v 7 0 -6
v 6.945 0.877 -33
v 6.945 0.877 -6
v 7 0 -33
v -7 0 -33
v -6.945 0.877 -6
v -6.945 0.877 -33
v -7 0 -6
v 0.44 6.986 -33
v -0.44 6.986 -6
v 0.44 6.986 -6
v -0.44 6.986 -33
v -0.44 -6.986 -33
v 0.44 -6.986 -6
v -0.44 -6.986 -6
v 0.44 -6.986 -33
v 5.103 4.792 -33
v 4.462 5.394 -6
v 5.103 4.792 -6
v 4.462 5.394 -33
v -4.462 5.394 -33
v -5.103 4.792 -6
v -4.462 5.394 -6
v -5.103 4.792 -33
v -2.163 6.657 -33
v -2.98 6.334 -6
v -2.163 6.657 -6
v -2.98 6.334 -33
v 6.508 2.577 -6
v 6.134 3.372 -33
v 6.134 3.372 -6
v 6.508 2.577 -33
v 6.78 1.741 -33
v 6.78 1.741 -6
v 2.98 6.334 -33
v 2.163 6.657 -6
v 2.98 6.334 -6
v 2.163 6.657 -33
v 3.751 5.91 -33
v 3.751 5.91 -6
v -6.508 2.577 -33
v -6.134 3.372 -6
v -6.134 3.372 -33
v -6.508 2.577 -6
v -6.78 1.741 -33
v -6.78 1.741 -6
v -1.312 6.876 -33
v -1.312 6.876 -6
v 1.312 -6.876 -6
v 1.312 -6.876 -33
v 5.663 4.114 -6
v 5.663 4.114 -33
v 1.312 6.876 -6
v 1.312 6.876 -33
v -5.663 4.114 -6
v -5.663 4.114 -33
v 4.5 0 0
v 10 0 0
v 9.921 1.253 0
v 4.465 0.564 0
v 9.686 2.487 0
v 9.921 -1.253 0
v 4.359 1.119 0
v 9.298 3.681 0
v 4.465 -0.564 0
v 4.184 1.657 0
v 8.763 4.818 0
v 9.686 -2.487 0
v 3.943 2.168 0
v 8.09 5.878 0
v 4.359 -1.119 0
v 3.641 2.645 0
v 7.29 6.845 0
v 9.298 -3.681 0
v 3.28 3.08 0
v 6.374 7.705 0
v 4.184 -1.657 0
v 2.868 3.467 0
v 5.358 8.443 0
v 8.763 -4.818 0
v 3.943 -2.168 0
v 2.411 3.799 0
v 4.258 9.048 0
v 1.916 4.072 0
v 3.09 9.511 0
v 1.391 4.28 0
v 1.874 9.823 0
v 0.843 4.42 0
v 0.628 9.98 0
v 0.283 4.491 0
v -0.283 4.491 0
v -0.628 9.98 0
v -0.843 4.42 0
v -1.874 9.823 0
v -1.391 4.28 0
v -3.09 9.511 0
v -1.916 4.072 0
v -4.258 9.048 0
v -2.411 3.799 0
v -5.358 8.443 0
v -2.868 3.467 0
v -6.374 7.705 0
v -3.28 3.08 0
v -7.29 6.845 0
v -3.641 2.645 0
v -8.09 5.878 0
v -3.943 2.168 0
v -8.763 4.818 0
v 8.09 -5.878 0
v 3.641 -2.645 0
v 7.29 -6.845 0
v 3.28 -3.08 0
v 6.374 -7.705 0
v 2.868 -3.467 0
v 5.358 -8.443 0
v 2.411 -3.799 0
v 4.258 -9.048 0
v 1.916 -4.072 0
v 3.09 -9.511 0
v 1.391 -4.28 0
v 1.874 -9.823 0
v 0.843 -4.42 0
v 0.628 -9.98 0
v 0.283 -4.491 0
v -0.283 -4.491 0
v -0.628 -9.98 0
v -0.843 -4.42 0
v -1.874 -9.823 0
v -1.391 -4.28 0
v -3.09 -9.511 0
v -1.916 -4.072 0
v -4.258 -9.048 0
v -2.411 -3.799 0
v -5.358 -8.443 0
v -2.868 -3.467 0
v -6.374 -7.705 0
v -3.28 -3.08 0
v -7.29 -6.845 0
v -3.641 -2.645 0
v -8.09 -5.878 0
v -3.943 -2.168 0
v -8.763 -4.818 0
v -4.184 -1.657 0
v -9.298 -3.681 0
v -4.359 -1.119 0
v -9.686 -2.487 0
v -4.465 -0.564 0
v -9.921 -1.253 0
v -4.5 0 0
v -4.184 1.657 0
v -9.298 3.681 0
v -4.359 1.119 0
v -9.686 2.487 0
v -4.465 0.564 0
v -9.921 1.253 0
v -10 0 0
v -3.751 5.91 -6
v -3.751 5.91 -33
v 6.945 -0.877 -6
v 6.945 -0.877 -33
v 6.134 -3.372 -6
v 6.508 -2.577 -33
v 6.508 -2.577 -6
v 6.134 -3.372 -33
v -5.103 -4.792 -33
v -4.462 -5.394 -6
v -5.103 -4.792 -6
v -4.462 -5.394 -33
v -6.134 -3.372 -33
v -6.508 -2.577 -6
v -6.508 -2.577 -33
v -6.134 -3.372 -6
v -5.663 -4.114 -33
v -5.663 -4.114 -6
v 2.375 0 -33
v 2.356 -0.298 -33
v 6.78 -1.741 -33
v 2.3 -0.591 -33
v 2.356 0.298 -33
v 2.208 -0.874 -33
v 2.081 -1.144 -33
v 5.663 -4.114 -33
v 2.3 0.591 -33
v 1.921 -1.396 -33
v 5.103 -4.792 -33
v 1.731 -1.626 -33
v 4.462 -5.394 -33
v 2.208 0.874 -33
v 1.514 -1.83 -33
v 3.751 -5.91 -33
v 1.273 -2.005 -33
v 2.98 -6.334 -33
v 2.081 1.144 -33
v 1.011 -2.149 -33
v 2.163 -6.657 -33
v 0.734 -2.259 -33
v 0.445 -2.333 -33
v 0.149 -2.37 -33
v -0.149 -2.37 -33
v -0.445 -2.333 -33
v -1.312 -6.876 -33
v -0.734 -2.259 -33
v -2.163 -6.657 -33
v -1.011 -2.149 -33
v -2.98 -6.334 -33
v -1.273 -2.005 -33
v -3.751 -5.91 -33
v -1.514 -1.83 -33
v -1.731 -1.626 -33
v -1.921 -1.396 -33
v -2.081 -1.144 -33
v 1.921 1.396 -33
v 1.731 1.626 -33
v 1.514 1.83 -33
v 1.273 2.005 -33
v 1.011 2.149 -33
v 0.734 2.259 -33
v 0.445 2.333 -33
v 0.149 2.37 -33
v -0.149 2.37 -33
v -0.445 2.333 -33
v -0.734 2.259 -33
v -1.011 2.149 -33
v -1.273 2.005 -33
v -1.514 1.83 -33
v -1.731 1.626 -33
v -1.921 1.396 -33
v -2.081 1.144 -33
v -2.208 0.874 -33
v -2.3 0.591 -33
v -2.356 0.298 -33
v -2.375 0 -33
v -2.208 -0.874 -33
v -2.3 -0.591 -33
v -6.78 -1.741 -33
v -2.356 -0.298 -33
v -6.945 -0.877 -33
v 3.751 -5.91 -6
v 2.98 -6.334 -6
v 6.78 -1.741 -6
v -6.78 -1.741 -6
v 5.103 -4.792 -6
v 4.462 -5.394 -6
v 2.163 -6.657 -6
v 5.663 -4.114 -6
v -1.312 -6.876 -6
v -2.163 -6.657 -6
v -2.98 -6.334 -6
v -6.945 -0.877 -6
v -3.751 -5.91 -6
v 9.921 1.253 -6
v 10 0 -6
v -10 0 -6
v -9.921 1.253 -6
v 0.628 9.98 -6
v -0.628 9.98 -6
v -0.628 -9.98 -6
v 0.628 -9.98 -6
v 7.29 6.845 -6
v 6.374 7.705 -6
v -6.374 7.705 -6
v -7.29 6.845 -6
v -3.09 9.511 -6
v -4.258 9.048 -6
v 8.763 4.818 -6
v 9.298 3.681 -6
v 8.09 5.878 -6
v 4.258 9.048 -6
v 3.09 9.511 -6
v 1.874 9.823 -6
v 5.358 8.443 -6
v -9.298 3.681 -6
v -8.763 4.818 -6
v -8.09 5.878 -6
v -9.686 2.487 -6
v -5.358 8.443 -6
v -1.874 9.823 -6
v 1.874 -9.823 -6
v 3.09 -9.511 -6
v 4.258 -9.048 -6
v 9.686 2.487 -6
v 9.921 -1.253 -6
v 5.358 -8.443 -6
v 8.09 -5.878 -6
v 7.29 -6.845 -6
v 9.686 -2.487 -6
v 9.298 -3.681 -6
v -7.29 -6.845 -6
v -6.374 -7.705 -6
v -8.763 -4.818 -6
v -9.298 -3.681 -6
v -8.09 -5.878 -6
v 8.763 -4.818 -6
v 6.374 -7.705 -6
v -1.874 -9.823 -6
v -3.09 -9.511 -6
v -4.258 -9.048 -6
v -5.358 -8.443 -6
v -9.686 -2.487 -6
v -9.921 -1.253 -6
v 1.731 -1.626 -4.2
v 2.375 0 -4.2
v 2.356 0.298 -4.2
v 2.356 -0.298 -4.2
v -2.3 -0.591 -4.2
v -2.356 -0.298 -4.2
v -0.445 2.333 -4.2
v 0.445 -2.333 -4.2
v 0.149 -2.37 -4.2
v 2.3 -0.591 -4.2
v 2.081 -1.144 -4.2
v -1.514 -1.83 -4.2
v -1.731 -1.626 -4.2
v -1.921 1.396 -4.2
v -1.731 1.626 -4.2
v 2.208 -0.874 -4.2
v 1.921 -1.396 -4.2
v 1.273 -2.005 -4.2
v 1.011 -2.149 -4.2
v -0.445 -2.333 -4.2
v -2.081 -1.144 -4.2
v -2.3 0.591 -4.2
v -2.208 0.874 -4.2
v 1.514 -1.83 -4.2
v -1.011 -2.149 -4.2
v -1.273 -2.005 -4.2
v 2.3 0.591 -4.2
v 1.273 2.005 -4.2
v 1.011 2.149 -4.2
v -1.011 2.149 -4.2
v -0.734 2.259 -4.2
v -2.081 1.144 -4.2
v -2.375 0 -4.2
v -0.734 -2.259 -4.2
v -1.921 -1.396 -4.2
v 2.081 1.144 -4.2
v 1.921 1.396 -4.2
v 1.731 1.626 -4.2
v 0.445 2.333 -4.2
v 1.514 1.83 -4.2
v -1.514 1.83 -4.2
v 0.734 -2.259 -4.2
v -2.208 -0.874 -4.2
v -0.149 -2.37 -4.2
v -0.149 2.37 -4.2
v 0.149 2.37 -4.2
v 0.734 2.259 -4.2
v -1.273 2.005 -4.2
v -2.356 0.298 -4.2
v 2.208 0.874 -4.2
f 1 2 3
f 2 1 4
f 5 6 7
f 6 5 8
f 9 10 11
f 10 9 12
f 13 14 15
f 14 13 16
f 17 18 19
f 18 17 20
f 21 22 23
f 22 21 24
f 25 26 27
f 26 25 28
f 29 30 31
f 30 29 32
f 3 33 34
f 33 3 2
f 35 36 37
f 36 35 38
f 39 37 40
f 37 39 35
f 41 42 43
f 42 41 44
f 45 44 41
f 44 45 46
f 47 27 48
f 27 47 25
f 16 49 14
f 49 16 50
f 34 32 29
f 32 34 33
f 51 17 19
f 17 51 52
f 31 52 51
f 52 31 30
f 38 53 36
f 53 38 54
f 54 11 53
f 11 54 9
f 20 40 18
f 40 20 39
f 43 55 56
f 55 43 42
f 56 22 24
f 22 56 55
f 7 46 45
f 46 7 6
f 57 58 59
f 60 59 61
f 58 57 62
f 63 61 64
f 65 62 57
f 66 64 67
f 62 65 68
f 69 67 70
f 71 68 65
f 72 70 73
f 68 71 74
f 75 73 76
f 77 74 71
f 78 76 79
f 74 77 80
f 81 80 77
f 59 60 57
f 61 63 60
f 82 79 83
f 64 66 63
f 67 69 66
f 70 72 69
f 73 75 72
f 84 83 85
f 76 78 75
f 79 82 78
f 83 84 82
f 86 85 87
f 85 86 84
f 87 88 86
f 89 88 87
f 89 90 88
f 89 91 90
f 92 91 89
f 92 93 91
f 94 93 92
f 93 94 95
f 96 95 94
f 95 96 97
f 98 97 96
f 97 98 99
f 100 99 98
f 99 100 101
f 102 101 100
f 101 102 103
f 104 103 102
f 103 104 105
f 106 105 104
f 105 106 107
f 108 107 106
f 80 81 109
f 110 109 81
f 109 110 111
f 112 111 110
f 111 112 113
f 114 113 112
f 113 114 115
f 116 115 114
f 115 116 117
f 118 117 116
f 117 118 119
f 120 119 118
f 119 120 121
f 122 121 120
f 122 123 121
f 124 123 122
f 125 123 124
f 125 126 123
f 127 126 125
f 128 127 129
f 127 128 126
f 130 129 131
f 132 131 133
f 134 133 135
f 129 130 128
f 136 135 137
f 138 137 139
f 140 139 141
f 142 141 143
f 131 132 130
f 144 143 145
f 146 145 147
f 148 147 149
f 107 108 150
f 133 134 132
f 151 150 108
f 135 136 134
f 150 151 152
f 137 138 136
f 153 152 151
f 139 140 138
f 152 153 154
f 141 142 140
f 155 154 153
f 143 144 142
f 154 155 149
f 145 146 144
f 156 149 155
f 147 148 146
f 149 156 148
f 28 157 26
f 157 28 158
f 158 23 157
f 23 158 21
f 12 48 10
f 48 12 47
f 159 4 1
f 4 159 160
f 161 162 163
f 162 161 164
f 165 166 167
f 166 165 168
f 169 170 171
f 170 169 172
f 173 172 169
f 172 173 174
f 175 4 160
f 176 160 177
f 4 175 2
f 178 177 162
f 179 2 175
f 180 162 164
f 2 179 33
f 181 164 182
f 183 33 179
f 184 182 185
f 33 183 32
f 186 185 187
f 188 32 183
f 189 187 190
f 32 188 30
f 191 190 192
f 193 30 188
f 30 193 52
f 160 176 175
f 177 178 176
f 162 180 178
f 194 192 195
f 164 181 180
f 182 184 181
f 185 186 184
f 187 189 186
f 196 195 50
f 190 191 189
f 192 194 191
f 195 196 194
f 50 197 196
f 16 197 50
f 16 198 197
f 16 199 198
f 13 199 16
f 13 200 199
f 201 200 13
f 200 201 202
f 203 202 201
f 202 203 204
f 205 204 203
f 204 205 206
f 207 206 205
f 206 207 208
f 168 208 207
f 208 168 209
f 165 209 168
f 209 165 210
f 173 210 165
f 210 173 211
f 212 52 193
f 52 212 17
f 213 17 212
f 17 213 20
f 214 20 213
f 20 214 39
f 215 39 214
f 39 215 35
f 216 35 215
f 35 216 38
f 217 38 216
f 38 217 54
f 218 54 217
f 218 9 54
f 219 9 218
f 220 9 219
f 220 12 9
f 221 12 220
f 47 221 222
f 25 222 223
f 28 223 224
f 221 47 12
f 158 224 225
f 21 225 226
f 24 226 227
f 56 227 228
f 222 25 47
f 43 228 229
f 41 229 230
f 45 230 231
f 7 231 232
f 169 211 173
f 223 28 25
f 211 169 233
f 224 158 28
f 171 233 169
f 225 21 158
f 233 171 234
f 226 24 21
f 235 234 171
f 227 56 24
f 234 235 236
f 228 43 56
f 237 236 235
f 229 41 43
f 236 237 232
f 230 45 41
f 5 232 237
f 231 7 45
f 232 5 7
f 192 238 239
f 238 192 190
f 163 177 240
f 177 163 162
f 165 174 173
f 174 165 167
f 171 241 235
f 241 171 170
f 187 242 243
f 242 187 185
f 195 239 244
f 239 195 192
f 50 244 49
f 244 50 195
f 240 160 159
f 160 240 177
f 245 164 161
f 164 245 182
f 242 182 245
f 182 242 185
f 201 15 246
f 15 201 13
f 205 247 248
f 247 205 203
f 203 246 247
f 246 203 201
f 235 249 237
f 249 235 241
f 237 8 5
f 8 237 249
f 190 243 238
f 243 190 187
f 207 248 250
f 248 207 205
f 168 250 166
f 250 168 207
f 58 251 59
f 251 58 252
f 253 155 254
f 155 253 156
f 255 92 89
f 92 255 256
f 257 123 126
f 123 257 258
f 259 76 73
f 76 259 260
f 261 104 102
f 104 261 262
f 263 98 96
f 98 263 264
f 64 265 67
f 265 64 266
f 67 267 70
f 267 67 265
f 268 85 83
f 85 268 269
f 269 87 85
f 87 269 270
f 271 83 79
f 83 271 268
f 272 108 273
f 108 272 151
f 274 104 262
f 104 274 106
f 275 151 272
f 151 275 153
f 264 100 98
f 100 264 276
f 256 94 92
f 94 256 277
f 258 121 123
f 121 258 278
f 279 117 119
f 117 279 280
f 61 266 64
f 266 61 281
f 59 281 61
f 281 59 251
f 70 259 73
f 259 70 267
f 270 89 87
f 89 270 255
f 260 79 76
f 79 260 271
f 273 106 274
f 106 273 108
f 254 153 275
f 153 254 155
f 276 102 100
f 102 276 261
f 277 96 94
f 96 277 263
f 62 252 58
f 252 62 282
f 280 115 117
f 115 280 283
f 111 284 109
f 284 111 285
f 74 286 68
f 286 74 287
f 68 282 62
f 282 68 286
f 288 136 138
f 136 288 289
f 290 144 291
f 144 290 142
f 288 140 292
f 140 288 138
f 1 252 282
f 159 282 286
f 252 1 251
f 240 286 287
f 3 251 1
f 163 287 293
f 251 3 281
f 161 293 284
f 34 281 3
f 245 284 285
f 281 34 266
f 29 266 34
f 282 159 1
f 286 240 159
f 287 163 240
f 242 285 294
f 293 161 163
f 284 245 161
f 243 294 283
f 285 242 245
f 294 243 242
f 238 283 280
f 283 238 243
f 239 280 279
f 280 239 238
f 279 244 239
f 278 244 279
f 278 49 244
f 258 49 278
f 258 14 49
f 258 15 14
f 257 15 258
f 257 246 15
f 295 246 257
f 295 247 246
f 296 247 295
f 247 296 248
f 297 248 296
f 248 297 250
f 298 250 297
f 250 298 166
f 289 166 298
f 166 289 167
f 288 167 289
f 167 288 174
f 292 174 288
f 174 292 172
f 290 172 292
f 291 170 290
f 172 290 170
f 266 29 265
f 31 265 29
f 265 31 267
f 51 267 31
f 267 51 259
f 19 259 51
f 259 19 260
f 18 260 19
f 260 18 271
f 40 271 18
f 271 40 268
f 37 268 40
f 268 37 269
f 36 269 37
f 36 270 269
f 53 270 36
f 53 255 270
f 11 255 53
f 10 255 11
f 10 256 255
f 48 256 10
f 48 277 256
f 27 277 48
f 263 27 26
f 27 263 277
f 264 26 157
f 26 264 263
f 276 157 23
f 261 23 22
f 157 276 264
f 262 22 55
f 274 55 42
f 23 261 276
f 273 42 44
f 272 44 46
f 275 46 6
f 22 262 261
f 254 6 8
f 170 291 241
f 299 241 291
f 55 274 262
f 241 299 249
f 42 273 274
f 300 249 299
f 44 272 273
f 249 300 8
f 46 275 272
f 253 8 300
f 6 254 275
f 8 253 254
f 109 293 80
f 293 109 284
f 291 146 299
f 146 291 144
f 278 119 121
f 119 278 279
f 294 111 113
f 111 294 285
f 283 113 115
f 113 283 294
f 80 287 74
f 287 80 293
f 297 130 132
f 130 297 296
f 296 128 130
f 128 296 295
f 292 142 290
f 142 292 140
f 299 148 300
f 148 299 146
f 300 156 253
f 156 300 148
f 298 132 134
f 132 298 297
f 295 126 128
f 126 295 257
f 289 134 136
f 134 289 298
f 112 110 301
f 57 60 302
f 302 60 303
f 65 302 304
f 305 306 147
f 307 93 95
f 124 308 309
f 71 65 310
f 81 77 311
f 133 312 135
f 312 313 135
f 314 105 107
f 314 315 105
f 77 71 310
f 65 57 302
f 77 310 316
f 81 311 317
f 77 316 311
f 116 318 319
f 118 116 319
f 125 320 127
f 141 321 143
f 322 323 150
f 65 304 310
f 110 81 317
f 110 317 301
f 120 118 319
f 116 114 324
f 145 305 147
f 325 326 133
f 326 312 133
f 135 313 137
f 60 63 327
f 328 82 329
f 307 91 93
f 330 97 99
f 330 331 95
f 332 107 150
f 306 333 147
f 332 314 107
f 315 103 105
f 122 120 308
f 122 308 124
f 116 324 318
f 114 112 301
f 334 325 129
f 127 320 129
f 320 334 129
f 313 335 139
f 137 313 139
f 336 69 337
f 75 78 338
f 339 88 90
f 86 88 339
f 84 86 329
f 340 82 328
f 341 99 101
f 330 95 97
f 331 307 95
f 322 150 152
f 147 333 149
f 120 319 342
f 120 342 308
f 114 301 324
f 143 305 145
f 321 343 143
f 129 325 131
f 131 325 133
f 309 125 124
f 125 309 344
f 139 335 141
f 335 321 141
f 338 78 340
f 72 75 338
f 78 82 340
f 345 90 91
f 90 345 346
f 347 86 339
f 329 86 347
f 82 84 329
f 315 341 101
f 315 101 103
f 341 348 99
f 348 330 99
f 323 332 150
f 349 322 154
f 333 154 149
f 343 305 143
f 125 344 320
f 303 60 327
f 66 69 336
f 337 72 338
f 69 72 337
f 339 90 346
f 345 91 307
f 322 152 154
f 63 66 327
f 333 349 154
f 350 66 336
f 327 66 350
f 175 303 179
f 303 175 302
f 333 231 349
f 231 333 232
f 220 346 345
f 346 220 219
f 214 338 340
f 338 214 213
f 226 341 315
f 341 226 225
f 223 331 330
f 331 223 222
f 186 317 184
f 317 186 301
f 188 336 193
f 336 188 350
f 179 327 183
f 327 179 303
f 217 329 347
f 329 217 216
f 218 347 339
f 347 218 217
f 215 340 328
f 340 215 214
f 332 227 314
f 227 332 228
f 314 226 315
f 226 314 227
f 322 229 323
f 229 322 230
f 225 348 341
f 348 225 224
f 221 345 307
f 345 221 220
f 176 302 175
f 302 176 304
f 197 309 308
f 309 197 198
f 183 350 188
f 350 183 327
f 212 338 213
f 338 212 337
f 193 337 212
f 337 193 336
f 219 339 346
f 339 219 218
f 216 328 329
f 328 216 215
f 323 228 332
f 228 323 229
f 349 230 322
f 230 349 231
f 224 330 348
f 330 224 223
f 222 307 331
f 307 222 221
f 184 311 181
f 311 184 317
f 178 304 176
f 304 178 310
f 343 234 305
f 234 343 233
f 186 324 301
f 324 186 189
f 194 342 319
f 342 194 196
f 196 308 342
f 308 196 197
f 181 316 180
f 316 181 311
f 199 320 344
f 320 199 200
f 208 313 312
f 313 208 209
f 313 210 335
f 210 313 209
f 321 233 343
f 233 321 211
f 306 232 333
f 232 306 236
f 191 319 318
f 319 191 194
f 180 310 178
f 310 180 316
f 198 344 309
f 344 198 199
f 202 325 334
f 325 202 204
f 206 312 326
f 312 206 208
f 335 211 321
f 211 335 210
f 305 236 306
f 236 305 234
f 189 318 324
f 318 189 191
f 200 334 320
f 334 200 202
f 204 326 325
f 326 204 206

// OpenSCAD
$fn = 50;


difference() {
	union() {
		translate(v = [0, 0, -33.0000000000]) {
			cylinder(h = 33, r = 7.0000000000);
		}
		translate(v = [0, 0, -6.0000000000]) {
			cylinder(h = 6, r = 10.0000000000);
		}
	}
	union() {
		translate(v = [0, 0, 0]) {
			rotate(a = [0, 0, 0]) {
				difference() {
					union() {
						#translate(v = [0, 0, -33.0000000000]) {
							cylinder(h = 33, r = 2.2500000000);
						}
						#translate(v = [0, 0, -4.2000000000]) {
							cylinder(h = 4.2000000000, r1 = 2.3750000000, r2 = 4.5000000000);
						}
						#translate(v = [0, 0, -33.0000000000]) {
							cylinder(h = 33, r = 2.3750000000);
						}
						#translate(v = [0, 0, -33.0000000000]) {
							cylinder(h = 33, r = 2.2500000000);
						}
					}
					union();
				}
			}
		}
	}
}
